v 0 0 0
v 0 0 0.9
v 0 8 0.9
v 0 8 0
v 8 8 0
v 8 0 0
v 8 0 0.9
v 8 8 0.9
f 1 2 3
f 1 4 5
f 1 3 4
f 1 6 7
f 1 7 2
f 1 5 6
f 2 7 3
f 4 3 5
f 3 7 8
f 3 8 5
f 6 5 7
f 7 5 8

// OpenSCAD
/* Warning, this is a very basic generator with a lot of approximation 
input data : [VQFN, 8JX, 8x8x0.9mm, 56, , A, C04-00433A]
generated by com.zoubworld.electronics.cad.model3d.Basic
Date : Sun Feb 15 10:50:48 CET 2026
*/

//body
color("black")
translate([0,0,0])
cube([8.0,8.0,0.9], center=false);
